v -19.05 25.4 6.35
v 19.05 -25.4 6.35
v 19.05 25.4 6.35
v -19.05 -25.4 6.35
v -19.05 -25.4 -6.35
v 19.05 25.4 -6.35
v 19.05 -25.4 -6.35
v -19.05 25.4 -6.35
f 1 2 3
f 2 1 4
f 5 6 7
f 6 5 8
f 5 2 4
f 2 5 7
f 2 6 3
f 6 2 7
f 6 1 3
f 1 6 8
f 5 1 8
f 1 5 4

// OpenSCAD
// ========================================
// a 1.5 by 2 by 0.5 inch box
// NeuroCAD canonical IR; dimensions are millimetres
// ========================================
$fn = 48;

cube(size=[38.1, 50.8, 12.7], center=true);
